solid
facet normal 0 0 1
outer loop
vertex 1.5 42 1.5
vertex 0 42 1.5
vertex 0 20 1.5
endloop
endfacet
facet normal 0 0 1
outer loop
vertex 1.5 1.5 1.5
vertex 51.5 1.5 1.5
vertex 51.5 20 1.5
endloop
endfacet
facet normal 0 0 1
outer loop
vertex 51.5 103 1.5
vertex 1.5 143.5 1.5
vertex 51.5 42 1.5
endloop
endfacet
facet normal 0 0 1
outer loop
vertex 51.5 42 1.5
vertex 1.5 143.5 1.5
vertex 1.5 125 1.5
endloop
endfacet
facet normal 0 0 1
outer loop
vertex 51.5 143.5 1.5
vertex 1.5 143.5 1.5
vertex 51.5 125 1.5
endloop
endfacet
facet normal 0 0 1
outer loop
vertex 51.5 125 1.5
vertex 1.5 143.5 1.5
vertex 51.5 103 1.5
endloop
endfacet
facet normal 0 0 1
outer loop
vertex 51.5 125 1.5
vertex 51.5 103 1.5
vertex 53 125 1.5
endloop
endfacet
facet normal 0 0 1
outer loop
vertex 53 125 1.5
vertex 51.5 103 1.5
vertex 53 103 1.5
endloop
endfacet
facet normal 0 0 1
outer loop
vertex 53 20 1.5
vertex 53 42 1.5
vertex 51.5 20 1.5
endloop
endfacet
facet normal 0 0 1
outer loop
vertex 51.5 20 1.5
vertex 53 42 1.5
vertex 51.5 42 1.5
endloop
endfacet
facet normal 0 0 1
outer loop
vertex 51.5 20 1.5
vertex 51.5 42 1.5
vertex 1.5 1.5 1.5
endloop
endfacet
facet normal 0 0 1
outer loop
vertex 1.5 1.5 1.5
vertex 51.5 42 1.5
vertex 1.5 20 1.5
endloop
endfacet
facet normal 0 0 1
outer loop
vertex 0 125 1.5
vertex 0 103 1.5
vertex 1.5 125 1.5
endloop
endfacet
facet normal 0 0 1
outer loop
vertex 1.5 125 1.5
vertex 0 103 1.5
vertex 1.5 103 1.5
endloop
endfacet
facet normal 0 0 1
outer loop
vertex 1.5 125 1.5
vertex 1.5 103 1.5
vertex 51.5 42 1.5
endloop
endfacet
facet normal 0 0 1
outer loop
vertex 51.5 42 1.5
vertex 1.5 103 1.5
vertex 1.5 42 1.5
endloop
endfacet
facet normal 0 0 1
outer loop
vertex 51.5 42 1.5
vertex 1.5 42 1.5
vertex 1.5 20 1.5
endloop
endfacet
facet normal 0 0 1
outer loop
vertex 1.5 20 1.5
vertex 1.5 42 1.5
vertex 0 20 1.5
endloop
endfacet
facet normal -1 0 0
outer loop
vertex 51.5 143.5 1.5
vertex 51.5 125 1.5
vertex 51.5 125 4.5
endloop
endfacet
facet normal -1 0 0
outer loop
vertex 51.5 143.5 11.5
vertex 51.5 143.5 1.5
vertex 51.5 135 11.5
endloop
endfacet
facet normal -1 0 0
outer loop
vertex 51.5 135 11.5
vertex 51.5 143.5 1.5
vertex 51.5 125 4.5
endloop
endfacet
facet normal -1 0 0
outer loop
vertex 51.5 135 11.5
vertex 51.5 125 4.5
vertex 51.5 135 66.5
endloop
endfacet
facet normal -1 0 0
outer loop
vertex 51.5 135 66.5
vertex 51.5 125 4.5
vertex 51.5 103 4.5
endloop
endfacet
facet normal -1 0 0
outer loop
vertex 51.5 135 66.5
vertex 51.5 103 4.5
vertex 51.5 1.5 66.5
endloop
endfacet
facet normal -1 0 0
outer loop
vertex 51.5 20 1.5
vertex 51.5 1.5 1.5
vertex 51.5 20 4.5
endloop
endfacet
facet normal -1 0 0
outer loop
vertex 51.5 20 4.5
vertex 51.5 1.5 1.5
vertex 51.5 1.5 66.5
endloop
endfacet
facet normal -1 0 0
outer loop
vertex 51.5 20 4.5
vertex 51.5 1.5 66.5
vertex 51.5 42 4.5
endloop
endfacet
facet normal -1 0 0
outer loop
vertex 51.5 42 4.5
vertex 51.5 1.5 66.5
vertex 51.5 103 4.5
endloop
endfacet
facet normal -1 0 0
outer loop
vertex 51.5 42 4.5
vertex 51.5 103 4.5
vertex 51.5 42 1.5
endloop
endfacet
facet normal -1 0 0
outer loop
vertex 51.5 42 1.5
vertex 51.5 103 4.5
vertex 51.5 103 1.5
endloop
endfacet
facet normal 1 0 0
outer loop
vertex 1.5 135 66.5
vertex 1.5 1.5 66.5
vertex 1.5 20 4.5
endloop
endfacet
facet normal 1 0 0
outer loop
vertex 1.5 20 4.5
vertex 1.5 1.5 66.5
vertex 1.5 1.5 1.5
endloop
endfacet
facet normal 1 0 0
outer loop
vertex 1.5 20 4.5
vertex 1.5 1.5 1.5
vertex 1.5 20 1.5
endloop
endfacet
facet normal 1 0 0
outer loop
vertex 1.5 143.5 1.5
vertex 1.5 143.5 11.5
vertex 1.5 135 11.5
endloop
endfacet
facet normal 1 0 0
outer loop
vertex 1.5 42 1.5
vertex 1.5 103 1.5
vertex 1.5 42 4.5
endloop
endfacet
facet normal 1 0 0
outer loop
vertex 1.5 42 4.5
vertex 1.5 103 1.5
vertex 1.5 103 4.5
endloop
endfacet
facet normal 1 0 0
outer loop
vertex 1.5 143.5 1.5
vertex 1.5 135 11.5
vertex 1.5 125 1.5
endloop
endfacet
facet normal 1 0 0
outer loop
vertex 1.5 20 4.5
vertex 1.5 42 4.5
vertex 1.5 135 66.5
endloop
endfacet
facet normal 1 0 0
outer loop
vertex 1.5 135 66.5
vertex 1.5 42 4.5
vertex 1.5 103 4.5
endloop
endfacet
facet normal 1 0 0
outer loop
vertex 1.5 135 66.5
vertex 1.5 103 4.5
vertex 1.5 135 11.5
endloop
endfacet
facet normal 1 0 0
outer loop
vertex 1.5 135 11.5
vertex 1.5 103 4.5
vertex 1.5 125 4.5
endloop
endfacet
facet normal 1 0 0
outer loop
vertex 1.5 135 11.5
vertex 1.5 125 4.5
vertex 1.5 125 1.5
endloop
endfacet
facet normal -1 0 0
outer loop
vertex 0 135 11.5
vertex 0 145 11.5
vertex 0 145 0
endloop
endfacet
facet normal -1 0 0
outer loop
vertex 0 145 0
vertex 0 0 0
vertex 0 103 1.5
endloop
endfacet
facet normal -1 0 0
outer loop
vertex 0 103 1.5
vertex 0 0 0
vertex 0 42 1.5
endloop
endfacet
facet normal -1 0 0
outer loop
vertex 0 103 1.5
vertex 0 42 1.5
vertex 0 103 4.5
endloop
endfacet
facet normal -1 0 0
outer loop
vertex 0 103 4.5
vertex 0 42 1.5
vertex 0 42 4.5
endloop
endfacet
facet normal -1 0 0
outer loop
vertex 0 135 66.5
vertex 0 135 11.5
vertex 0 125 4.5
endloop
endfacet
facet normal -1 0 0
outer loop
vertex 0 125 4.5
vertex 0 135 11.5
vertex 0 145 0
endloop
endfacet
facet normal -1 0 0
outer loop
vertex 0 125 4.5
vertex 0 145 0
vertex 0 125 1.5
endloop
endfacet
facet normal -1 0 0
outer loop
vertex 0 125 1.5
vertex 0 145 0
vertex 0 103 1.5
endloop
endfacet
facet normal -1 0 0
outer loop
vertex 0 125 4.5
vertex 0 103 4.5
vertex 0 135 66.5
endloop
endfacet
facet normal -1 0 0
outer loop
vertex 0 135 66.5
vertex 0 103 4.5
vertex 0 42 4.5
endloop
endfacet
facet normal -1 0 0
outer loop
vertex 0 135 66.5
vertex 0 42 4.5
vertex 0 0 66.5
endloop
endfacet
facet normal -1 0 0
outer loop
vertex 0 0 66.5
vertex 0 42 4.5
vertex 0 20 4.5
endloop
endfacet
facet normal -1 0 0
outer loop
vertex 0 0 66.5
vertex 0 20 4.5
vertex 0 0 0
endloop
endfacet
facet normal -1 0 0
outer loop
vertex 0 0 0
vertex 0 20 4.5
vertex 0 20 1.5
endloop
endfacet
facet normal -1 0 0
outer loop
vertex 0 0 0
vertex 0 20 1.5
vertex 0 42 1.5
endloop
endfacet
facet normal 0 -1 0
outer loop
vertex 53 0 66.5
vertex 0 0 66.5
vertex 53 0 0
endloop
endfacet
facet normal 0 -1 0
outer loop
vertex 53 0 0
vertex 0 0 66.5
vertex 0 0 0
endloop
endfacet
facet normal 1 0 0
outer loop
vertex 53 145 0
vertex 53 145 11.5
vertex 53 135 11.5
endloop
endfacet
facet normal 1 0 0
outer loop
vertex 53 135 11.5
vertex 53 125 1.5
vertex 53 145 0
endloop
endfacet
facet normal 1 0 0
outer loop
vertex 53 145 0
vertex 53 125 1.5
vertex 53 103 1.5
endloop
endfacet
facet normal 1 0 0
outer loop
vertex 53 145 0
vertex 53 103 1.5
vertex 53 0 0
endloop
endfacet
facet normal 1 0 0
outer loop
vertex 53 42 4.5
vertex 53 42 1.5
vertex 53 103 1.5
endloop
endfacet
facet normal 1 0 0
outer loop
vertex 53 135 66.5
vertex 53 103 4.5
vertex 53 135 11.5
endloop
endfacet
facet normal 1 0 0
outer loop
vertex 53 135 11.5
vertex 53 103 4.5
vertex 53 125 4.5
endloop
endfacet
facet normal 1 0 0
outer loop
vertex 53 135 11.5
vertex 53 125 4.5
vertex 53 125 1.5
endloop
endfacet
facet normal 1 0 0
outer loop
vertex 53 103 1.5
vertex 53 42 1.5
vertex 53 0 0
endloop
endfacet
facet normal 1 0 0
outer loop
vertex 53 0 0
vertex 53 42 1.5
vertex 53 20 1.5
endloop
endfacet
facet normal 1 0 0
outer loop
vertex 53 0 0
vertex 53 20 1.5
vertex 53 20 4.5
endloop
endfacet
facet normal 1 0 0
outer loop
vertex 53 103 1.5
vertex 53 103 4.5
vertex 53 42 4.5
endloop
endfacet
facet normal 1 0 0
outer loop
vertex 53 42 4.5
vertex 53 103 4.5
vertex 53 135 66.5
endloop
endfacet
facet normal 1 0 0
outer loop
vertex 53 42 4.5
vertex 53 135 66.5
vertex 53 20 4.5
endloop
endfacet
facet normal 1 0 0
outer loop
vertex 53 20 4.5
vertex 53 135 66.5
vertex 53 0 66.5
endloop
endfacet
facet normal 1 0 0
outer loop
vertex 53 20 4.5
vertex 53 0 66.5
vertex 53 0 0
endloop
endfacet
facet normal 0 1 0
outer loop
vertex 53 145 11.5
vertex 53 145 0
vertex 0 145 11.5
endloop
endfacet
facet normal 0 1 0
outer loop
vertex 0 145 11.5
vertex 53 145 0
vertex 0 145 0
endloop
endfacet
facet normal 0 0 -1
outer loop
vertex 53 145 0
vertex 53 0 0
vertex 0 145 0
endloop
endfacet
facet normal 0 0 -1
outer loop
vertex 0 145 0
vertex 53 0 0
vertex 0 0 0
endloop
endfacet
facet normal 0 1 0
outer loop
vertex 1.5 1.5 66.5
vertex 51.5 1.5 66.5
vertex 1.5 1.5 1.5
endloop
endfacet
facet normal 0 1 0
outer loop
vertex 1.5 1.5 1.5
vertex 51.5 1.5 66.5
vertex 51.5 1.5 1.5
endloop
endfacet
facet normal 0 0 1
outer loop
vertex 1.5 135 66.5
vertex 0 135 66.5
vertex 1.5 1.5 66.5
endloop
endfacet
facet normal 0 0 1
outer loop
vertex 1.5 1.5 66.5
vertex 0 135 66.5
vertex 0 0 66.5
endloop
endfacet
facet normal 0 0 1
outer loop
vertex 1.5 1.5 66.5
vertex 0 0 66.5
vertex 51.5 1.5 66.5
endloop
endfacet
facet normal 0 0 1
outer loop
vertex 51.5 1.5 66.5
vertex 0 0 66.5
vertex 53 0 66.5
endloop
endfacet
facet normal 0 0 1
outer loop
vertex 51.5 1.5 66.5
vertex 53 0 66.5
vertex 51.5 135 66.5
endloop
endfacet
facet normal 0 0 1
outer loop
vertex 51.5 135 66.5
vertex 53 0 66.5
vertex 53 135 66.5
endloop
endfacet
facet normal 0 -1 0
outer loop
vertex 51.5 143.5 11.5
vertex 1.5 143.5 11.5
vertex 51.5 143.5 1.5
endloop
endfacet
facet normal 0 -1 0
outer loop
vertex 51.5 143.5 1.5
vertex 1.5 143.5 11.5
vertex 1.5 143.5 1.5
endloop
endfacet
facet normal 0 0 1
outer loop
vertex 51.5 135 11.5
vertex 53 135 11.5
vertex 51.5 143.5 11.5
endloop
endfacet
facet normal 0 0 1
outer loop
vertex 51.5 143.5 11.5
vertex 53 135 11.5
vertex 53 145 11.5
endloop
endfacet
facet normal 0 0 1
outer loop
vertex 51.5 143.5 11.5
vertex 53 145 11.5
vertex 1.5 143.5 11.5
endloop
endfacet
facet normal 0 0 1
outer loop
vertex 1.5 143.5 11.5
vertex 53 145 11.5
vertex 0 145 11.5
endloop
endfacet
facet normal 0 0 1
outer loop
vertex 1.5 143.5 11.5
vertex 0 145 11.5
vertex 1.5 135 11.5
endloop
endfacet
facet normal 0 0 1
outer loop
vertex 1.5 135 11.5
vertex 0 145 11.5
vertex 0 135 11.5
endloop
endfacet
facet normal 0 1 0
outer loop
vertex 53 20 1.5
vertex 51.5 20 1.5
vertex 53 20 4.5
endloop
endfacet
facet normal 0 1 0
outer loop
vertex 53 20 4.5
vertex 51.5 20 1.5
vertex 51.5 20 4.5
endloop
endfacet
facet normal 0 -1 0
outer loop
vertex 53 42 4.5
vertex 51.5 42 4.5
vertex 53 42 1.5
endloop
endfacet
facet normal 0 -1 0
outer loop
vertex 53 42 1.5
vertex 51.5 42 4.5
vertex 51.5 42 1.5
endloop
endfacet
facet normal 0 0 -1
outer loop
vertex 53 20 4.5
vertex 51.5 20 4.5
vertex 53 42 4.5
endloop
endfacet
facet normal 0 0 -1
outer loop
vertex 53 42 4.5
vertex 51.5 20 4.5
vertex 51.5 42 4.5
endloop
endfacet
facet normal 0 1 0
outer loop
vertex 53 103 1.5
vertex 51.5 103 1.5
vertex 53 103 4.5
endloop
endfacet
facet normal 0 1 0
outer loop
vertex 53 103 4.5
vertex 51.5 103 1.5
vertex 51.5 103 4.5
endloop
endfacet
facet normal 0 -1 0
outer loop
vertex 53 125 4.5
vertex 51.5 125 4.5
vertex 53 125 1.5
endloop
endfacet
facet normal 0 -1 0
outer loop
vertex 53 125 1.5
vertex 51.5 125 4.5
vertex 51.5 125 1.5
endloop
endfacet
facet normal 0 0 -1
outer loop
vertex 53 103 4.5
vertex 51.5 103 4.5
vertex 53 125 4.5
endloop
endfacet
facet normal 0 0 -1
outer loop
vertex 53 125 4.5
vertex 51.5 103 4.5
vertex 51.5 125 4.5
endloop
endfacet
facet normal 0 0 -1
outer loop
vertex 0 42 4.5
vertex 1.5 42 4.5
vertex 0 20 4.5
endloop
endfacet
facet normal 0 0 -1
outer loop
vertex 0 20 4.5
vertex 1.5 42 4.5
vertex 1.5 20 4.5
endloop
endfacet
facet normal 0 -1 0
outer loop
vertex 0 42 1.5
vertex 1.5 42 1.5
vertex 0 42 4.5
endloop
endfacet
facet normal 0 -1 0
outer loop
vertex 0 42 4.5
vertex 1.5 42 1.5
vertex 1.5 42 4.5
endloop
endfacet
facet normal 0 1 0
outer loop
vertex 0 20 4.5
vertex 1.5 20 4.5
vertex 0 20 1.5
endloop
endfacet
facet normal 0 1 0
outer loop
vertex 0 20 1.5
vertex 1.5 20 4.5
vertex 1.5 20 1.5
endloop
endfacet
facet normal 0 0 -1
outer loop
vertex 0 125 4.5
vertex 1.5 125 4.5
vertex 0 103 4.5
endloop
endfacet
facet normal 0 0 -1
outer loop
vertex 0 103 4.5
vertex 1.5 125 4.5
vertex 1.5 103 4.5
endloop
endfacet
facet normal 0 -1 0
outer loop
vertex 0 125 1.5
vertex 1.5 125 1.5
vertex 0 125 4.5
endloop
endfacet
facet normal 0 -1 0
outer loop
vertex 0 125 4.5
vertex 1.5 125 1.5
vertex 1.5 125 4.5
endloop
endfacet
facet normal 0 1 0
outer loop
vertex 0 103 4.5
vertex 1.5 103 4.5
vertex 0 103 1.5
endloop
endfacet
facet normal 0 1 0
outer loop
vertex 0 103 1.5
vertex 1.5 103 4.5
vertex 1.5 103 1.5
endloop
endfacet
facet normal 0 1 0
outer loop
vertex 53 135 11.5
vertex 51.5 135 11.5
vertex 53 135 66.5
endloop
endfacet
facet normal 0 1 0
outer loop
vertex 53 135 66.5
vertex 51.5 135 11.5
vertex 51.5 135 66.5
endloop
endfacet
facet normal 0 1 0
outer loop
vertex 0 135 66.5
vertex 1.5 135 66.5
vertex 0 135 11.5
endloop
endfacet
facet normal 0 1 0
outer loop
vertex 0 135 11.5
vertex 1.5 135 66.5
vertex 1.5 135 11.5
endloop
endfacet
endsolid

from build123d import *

# Parameters (mm, degrees)
SKETCH_1_W          = 53
SKETCH_1_H          = 145
EXTRUDE_1_DEPTH     = 1.5
EXTRUDE_2_DEPTH     = 65
SKETCH_3_W          = 50
SKETCH_3_H          = 1.5
EXTRUDE_3_DEPTH     = 10
SKETCH_4_W          = 3
SKETCH_4_H          = 22
CUT_EXTRUDE_1_DEPTH = 100
SKETCH_5_W          = 55
SKETCH_5_H          = 10
CUT_EXTRUDE_2_DEPTH = 100


with BuildPart() as part:
    # Эскиз1 → Бобышка-Вытянуть1 (new body)
    with BuildSketch(Plane.XY):
        with Locations((26.5, 72.5)):
            Rectangle(SKETCH_1_W, SKETCH_1_H)
    extrude(amount=EXTRUDE_1_DEPTH)

    # Эскиз2 → Бобышка-Вытянуть2 (add)
    with BuildSketch(Plane.XY.offset(1.5)):
        Polygon((1.5, 145), (1.5, 1.5), (51.5, 1.5), (51.5, 145), (53, 145), (53, 0), (0, 0), (0, 145), align=None)
    extrude(amount=EXTRUDE_2_DEPTH)

    # Эскиз3 → Бобышка-Вытянуть3 (add)
    with BuildSketch(Plane.XY.offset(1.5)):
        with Locations((26.5, 144.25)):
            Rectangle(SKETCH_3_W, SKETCH_3_H)
    extrude(amount=EXTRUDE_3_DEPTH)

    # Эскиз4 → Вырез-Вытянуть1 (cut)
    with BuildSketch(Plane(origin=(53, 0, 0), x_dir=(0, 0, -1), z_dir=(1, 0, 0))):
        with Locations((-3, 114)):
            Rectangle(SKETCH_4_W, SKETCH_4_H)
        with Locations((-3, 31)):
            Rectangle(SKETCH_4_W, SKETCH_4_H)
    extrude(amount=-CUT_EXTRUDE_1_DEPTH, mode=Mode.SUBTRACT)

    # Эскиз5 → Вырез-Вытянуть2 (cut)
    with BuildSketch(Plane(origin=(53, 0, 0), x_dir=(0, 0, -1), z_dir=(1, 0, 0))):
        with Locations((-39, 140)):
            Rectangle(SKETCH_5_W, SKETCH_5_H)
    extrude(amount=-CUT_EXTRUDE_2_DEPTH, mode=Mode.SUBTRACT)


solid = part.part
